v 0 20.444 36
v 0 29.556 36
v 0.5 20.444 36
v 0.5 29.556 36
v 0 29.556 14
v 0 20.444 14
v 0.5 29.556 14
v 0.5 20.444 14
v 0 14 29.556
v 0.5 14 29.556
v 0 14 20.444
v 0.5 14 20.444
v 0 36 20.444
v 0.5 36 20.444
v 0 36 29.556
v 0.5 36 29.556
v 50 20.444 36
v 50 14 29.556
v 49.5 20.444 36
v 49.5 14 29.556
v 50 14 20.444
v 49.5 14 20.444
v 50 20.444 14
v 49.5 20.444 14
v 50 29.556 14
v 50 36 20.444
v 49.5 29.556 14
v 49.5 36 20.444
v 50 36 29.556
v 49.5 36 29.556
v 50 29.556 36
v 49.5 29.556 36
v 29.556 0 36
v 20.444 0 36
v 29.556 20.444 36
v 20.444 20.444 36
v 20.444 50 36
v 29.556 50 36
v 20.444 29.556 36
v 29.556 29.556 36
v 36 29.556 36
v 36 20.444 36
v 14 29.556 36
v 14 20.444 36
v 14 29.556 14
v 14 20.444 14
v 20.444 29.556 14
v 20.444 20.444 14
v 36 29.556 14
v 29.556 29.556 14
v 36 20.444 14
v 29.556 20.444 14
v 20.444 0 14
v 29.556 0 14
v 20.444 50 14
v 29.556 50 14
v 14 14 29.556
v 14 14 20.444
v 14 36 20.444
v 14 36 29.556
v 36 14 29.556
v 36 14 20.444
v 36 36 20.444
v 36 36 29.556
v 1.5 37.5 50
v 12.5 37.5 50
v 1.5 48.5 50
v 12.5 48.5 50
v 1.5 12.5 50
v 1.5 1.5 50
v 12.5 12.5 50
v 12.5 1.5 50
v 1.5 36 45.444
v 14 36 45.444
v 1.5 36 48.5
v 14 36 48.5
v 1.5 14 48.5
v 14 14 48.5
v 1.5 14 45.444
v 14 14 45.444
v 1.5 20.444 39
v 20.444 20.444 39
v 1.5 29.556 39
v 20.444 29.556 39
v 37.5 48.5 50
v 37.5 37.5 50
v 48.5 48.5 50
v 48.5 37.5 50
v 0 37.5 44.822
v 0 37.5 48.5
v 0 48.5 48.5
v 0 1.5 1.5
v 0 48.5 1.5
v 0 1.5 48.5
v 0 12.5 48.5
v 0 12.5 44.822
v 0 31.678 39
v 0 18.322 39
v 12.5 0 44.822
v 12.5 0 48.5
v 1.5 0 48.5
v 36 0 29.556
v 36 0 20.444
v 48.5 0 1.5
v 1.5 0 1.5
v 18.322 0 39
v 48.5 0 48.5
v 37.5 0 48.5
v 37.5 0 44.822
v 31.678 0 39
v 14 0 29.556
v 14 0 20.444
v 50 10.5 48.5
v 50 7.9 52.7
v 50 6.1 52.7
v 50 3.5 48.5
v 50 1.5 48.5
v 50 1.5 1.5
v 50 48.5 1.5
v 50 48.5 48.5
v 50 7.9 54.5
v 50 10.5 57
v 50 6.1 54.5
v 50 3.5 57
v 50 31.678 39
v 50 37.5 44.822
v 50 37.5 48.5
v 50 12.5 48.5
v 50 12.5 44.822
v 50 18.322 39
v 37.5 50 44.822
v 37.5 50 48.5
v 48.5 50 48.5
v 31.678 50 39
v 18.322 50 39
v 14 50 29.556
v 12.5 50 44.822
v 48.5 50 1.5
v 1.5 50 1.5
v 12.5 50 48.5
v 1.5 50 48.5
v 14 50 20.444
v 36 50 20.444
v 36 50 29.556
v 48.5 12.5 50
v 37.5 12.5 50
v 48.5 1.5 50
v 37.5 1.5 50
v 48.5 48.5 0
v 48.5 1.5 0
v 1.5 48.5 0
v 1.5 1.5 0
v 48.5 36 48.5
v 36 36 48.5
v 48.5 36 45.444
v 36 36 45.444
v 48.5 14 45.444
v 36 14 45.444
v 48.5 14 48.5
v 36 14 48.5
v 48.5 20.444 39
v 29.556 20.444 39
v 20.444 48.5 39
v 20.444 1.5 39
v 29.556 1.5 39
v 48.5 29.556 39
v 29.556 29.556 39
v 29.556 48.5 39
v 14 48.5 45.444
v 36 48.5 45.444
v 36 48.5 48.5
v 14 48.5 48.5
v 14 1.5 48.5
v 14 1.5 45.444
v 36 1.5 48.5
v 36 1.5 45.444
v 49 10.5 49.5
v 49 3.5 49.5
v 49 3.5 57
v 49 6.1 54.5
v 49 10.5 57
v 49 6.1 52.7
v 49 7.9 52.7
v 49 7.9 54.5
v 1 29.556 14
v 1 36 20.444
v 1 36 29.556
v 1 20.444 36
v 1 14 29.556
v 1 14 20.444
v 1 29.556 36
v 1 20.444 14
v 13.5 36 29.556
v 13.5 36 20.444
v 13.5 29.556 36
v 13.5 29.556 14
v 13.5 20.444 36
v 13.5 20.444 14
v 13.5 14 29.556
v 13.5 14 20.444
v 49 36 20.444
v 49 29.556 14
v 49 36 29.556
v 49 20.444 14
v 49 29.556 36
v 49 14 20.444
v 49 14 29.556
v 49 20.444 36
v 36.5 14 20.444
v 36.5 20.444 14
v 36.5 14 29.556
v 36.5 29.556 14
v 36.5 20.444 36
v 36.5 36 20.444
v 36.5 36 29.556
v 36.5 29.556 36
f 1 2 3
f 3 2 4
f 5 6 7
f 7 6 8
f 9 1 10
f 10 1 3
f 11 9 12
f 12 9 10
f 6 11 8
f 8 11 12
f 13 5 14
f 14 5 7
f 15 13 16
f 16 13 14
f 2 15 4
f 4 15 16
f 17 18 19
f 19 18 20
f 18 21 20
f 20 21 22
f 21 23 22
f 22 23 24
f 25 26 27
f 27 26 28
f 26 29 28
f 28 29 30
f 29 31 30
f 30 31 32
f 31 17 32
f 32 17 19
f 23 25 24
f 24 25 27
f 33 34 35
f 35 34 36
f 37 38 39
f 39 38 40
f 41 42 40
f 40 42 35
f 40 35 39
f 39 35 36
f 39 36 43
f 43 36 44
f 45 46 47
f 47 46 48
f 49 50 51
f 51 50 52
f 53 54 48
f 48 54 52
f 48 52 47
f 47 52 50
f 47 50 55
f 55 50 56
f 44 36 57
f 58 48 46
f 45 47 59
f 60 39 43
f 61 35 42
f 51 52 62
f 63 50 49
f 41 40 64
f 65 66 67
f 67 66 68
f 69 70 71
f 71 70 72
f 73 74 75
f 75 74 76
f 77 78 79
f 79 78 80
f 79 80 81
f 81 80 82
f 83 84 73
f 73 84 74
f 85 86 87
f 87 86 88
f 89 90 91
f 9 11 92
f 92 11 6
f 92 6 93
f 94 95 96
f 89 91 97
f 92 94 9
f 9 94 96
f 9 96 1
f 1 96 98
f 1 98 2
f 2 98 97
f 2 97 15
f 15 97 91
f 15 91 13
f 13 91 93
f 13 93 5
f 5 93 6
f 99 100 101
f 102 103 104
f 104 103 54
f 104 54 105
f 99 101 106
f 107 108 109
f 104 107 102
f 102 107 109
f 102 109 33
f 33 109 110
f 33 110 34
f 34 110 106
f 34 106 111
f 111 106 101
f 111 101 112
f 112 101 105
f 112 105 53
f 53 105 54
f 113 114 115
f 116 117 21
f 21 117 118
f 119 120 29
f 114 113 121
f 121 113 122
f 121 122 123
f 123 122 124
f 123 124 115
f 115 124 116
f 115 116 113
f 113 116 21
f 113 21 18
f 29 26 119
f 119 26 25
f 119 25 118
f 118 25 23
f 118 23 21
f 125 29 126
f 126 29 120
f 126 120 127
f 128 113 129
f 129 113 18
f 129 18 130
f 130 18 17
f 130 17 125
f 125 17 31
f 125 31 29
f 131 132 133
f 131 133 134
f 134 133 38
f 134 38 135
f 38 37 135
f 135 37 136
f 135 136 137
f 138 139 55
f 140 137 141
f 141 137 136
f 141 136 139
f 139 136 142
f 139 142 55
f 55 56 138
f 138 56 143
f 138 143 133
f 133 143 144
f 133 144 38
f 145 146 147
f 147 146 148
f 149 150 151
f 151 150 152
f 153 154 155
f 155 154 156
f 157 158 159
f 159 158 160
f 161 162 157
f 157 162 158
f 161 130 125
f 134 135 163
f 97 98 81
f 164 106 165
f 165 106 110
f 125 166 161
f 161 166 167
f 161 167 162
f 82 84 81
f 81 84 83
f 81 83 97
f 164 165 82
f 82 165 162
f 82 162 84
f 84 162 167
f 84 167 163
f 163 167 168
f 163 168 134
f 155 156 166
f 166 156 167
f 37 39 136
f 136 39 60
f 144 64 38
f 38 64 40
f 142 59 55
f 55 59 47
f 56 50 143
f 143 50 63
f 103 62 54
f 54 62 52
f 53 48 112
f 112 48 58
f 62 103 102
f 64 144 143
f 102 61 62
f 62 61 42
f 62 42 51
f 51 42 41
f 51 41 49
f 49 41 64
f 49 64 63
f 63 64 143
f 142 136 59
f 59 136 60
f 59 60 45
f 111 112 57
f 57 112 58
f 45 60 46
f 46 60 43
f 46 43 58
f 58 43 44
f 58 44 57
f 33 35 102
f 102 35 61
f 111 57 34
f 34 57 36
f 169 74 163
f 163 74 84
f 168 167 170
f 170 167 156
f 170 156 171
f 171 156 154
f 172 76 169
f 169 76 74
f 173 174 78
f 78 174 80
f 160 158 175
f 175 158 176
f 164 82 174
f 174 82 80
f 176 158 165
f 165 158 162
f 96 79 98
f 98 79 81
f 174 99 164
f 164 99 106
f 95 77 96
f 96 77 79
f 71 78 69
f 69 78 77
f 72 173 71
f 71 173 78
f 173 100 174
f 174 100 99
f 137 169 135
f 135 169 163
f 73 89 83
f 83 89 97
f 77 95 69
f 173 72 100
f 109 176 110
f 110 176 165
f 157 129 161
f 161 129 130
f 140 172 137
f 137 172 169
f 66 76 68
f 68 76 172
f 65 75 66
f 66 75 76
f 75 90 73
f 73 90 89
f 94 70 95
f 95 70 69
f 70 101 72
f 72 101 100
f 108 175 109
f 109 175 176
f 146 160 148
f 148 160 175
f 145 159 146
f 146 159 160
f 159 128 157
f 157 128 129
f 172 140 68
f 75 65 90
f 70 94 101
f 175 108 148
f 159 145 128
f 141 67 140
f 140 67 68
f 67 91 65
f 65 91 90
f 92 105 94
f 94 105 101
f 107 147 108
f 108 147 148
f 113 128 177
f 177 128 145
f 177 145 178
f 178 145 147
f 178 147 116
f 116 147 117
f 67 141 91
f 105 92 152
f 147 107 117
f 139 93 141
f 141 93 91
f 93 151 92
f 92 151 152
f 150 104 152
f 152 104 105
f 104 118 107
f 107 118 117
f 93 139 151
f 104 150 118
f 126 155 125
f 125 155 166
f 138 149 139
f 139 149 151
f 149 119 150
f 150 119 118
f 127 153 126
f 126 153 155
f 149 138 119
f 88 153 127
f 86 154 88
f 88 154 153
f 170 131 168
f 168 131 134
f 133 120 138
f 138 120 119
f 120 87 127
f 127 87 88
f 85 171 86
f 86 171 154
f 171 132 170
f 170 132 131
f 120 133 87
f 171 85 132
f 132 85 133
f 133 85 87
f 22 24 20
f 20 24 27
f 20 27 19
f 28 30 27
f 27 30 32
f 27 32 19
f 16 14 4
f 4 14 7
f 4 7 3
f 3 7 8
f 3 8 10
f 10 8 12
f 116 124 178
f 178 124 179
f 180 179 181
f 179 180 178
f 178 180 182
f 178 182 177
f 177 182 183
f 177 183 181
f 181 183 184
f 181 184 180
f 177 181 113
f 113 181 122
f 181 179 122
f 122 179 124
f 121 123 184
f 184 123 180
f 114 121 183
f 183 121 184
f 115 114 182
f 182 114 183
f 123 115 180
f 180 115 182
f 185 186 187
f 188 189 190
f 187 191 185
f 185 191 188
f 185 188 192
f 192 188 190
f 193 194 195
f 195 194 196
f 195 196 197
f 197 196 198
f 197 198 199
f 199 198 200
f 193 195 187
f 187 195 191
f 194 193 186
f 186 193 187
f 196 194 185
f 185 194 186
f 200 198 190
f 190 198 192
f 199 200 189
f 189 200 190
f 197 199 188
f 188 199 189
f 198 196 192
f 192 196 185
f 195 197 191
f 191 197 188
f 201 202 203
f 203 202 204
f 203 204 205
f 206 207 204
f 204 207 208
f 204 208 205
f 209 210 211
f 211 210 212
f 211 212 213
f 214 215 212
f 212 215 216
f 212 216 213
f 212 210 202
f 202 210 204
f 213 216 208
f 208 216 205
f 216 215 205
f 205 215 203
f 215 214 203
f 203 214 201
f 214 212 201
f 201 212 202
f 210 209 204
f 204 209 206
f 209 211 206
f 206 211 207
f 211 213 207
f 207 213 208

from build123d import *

# Parameters (mm, degrees)
SKETCH1_W                = 50
SKETCH1_H                = 50
BOSS_EXTRUDE1_DEPTH      = 50
CUT_EXTRUDE1_DEPTH       = 87.602540378
CUT_EXTRUDE2_DEPTH       = 87.602540378
CHAMFER1_SIZE            = 1.5
BOSS_EXTRUDE2_REACH      = 81.347
SKETCH11_W               = 0.5
SKETCH11_H               = 22
BOSS_EXTRUDE3_DEPTH      = 7
BOSS_EXTRUDE3_DEPTH_BACK = 10
SKETCH12_W               = 1
SKETCH12_H               = 7
SKETCH13_W               = 1.8
SKETCH13_H               = 1.8
CUT_EXTRUDE3_DEPTH       = 7


with BuildPart() as part:
    # Sketch1 → Boss-Extrude1 (new body)
    with BuildSketch(Plane.XY):
        with Locations((25, 25)):
            Rectangle(SKETCH1_W, SKETCH1_H)
    extrude(amount=BOSS_EXTRUDE1_DEPTH)

    # Sketch2 → Cut-Extrude1 (cut, through all)
    with BuildSketch(Plane.ZY):
        Polygon((45.443650814, 14), (54.556349186, 14), (61, 20.443650814), (61, 29.556349186), (54.556349186, 36), (45.443650814, 36), (39, 29.556349186), (39, 20.443650814), align=None)
        Polygon((36, 29.556349186), (29.556349186, 36), (20.443650814, 36), (14, 29.556349186), (14, 20.443650814), (20.443650814, 14), (29.556349186, 14), (36, 20.443650814), align=None)
    extrude(amount=-CUT_EXTRUDE1_DEPTH, mode=Mode.SUBTRACT)

    # Sketch10 → Cut-Extrude2 (cut, through all)
    with BuildSketch(Plane.XZ):
        Polygon((29.556349186, 36), (20.443650814, 36), (14, 29.556349186), (14, 20.443650814), (20.443650814, 14), (29.556349186, 14), (36, 20.443650814), (36, 29.556349186), align=None)
        Polygon((29.556349186, 39), (36, 45.443650814), (36, 54.556349186), (29.556349186, 61), (20.443650814, 61), (14, 54.556349186), (14, 45.443650814), (20.443650814, 39), align=None)
    extrude(amount=-CUT_EXTRUDE2_DEPTH, mode=Mode.SUBTRACT)

    # Chamfer1
    chamfer1_edges = [part.edges().sort_by_distance(p)[0] for p in [
        (50, 7, 50),
        (0, 7, 50),
        (50, 43, 50),
        (43, 14, 50),
        (7, 36, 50),
        (50, 36, 47.721825407),
        (50, 14, 47.721825407),
        (0, 14, 47.721825407),
        (0, 36, 47.721825407),
        (0, 32.778174593, 42.221825407),
        (0, 17.221825407, 42.221825407),
        (50, 17.221825407, 42.221825407),
        (50, 32.778174593, 42.221825407),
        (43, 50, 50),
        (7, 14, 50),
        (43, 36, 50),
        (43, 0, 50),
        (7, 50, 50),
        (36, 0, 47.721825407),
        (14, 0, 47.721825407),
        (17.221825407, 0, 42.221825407),
        (32.778174593, 0, 42.221825407),
        (14, 43, 50),
        (14, 50, 47.721825407),
        (14, 7, 50),
        (36, 50, 47.721825407),
        (36, 43, 50),
        (36, 7, 50),
        (17.221825407, 50, 42.221825407),
        (32.778174593, 50, 42.221825407),
        (0, 43, 50),
        (25, 50, 0),
        (50, 25, 0),
        (25, 0, 0),
        (0, 25, 0),
        (7, 0, 50),
        (0, 50, 25),
        (50, 50, 25),
        (50, 0, 25),
        (0, 0, 25),
    ]]
    chamfer(chamfer1_edges, length=CHAMFER1_SIZE)

    # Boss-Extrude2: up to this face of the body (flat: up to its plane)
    boss_extrude2_end = Plane(part.part.faces().sort_by_distance((25, 25, 39))[0])
    # Sketch11 → Boss-Extrude2 (add, up to the picked face)
    with BuildSketch(Plane.XY.offset(14), mode=Mode.PRIVATE) as boss_extrude2_sk1:
        with Locations((36.25, 25)):
            Rectangle(SKETCH11_W, SKETCH11_H)
    boss_extrude2_tool1 = split(extrude(boss_extrude2_sk1.sketch, amount=BOSS_EXTRUDE2_REACH, mode=Mode.PRIVATE), bisect_by=boss_extrude2_end, keep=Keep.BOTH, mode=Mode.PRIVATE)
    # Sketch11 → Boss-Extrude2 (add, up to the picked face)
    with BuildSketch(Plane.XY.offset(14), mode=Mode.PRIVATE) as boss_extrude2_sk2:
        with Locations((13.75, 25)):
            Rectangle(SKETCH11_W, SKETCH11_H)
    boss_extrude2_tool2 = split(extrude(boss_extrude2_sk2.sketch, amount=BOSS_EXTRUDE2_REACH, mode=Mode.PRIVATE), bisect_by=boss_extrude2_end, keep=Keep.BOTH, mode=Mode.PRIVATE)
    # Sketch11 → Boss-Extrude2 (add, up to the picked face)
    with BuildSketch(Plane.XY.offset(14), mode=Mode.PRIVATE) as boss_extrude2_sk3:
        with Locations((49.25, 25)):
            Rectangle(SKETCH11_W, SKETCH11_H)
    boss_extrude2_tool3 = split(extrude(boss_extrude2_sk3.sketch, amount=BOSS_EXTRUDE2_REACH, mode=Mode.PRIVATE), bisect_by=boss_extrude2_end, keep=Keep.BOTH, mode=Mode.PRIVATE)
    # Sketch11 → Boss-Extrude2 (add, up to the picked face)
    with BuildSketch(Plane.XY.offset(14), mode=Mode.PRIVATE) as boss_extrude2_sk4:
        with Locations((0.75, 25)):
            Rectangle(SKETCH11_W, SKETCH11_H)
    boss_extrude2_tool4 = split(extrude(boss_extrude2_sk4.sketch, amount=BOSS_EXTRUDE2_REACH, mode=Mode.PRIVATE), bisect_by=boss_extrude2_end, keep=Keep.BOTH, mode=Mode.PRIVATE)
    add(boss_extrude2_tool1.solids().sort_by(Axis((36.25, 25, 14), (0, 0, 1)))[0])
    add(boss_extrude2_tool2.solids().sort_by(Axis((13.75, 25, 14), (0, 0, 1)))[0])
    add(boss_extrude2_tool3.solids().sort_by(Axis((49.25, 25, 14), (0, 0, 1)))[0])
    add(boss_extrude2_tool4.solids().sort_by(Axis((0.75, 25, 14), (0, 0, 1)))[0])

    # Sketch12 → Boss-Extrude3 (add, two sides: drawn at the far end of the back side and taken through both)
    with BuildSketch(Plane.XY.offset(50).offset(-BOSS_EXTRUDE3_DEPTH_BACK)):
        with Locations((49.5, 7)):
            Rectangle(SKETCH12_W, SKETCH12_H)
    extrude(amount=BOSS_EXTRUDE3_DEPTH + BOSS_EXTRUDE3_DEPTH_BACK)

    # Sketch13 → Cut-Extrude3 (cut)
    with BuildSketch(Plane(origin=(50, 0, 0), x_dir=(0, 0, -1), z_dir=(1, 0, 0))):
        with Locations((-53.6, 7)):
            Rectangle(SKETCH13_W, SKETCH13_H)
    extrude(amount=-CUT_EXTRUDE3_DEPTH, mode=Mode.SUBTRACT)


solid = part.part
